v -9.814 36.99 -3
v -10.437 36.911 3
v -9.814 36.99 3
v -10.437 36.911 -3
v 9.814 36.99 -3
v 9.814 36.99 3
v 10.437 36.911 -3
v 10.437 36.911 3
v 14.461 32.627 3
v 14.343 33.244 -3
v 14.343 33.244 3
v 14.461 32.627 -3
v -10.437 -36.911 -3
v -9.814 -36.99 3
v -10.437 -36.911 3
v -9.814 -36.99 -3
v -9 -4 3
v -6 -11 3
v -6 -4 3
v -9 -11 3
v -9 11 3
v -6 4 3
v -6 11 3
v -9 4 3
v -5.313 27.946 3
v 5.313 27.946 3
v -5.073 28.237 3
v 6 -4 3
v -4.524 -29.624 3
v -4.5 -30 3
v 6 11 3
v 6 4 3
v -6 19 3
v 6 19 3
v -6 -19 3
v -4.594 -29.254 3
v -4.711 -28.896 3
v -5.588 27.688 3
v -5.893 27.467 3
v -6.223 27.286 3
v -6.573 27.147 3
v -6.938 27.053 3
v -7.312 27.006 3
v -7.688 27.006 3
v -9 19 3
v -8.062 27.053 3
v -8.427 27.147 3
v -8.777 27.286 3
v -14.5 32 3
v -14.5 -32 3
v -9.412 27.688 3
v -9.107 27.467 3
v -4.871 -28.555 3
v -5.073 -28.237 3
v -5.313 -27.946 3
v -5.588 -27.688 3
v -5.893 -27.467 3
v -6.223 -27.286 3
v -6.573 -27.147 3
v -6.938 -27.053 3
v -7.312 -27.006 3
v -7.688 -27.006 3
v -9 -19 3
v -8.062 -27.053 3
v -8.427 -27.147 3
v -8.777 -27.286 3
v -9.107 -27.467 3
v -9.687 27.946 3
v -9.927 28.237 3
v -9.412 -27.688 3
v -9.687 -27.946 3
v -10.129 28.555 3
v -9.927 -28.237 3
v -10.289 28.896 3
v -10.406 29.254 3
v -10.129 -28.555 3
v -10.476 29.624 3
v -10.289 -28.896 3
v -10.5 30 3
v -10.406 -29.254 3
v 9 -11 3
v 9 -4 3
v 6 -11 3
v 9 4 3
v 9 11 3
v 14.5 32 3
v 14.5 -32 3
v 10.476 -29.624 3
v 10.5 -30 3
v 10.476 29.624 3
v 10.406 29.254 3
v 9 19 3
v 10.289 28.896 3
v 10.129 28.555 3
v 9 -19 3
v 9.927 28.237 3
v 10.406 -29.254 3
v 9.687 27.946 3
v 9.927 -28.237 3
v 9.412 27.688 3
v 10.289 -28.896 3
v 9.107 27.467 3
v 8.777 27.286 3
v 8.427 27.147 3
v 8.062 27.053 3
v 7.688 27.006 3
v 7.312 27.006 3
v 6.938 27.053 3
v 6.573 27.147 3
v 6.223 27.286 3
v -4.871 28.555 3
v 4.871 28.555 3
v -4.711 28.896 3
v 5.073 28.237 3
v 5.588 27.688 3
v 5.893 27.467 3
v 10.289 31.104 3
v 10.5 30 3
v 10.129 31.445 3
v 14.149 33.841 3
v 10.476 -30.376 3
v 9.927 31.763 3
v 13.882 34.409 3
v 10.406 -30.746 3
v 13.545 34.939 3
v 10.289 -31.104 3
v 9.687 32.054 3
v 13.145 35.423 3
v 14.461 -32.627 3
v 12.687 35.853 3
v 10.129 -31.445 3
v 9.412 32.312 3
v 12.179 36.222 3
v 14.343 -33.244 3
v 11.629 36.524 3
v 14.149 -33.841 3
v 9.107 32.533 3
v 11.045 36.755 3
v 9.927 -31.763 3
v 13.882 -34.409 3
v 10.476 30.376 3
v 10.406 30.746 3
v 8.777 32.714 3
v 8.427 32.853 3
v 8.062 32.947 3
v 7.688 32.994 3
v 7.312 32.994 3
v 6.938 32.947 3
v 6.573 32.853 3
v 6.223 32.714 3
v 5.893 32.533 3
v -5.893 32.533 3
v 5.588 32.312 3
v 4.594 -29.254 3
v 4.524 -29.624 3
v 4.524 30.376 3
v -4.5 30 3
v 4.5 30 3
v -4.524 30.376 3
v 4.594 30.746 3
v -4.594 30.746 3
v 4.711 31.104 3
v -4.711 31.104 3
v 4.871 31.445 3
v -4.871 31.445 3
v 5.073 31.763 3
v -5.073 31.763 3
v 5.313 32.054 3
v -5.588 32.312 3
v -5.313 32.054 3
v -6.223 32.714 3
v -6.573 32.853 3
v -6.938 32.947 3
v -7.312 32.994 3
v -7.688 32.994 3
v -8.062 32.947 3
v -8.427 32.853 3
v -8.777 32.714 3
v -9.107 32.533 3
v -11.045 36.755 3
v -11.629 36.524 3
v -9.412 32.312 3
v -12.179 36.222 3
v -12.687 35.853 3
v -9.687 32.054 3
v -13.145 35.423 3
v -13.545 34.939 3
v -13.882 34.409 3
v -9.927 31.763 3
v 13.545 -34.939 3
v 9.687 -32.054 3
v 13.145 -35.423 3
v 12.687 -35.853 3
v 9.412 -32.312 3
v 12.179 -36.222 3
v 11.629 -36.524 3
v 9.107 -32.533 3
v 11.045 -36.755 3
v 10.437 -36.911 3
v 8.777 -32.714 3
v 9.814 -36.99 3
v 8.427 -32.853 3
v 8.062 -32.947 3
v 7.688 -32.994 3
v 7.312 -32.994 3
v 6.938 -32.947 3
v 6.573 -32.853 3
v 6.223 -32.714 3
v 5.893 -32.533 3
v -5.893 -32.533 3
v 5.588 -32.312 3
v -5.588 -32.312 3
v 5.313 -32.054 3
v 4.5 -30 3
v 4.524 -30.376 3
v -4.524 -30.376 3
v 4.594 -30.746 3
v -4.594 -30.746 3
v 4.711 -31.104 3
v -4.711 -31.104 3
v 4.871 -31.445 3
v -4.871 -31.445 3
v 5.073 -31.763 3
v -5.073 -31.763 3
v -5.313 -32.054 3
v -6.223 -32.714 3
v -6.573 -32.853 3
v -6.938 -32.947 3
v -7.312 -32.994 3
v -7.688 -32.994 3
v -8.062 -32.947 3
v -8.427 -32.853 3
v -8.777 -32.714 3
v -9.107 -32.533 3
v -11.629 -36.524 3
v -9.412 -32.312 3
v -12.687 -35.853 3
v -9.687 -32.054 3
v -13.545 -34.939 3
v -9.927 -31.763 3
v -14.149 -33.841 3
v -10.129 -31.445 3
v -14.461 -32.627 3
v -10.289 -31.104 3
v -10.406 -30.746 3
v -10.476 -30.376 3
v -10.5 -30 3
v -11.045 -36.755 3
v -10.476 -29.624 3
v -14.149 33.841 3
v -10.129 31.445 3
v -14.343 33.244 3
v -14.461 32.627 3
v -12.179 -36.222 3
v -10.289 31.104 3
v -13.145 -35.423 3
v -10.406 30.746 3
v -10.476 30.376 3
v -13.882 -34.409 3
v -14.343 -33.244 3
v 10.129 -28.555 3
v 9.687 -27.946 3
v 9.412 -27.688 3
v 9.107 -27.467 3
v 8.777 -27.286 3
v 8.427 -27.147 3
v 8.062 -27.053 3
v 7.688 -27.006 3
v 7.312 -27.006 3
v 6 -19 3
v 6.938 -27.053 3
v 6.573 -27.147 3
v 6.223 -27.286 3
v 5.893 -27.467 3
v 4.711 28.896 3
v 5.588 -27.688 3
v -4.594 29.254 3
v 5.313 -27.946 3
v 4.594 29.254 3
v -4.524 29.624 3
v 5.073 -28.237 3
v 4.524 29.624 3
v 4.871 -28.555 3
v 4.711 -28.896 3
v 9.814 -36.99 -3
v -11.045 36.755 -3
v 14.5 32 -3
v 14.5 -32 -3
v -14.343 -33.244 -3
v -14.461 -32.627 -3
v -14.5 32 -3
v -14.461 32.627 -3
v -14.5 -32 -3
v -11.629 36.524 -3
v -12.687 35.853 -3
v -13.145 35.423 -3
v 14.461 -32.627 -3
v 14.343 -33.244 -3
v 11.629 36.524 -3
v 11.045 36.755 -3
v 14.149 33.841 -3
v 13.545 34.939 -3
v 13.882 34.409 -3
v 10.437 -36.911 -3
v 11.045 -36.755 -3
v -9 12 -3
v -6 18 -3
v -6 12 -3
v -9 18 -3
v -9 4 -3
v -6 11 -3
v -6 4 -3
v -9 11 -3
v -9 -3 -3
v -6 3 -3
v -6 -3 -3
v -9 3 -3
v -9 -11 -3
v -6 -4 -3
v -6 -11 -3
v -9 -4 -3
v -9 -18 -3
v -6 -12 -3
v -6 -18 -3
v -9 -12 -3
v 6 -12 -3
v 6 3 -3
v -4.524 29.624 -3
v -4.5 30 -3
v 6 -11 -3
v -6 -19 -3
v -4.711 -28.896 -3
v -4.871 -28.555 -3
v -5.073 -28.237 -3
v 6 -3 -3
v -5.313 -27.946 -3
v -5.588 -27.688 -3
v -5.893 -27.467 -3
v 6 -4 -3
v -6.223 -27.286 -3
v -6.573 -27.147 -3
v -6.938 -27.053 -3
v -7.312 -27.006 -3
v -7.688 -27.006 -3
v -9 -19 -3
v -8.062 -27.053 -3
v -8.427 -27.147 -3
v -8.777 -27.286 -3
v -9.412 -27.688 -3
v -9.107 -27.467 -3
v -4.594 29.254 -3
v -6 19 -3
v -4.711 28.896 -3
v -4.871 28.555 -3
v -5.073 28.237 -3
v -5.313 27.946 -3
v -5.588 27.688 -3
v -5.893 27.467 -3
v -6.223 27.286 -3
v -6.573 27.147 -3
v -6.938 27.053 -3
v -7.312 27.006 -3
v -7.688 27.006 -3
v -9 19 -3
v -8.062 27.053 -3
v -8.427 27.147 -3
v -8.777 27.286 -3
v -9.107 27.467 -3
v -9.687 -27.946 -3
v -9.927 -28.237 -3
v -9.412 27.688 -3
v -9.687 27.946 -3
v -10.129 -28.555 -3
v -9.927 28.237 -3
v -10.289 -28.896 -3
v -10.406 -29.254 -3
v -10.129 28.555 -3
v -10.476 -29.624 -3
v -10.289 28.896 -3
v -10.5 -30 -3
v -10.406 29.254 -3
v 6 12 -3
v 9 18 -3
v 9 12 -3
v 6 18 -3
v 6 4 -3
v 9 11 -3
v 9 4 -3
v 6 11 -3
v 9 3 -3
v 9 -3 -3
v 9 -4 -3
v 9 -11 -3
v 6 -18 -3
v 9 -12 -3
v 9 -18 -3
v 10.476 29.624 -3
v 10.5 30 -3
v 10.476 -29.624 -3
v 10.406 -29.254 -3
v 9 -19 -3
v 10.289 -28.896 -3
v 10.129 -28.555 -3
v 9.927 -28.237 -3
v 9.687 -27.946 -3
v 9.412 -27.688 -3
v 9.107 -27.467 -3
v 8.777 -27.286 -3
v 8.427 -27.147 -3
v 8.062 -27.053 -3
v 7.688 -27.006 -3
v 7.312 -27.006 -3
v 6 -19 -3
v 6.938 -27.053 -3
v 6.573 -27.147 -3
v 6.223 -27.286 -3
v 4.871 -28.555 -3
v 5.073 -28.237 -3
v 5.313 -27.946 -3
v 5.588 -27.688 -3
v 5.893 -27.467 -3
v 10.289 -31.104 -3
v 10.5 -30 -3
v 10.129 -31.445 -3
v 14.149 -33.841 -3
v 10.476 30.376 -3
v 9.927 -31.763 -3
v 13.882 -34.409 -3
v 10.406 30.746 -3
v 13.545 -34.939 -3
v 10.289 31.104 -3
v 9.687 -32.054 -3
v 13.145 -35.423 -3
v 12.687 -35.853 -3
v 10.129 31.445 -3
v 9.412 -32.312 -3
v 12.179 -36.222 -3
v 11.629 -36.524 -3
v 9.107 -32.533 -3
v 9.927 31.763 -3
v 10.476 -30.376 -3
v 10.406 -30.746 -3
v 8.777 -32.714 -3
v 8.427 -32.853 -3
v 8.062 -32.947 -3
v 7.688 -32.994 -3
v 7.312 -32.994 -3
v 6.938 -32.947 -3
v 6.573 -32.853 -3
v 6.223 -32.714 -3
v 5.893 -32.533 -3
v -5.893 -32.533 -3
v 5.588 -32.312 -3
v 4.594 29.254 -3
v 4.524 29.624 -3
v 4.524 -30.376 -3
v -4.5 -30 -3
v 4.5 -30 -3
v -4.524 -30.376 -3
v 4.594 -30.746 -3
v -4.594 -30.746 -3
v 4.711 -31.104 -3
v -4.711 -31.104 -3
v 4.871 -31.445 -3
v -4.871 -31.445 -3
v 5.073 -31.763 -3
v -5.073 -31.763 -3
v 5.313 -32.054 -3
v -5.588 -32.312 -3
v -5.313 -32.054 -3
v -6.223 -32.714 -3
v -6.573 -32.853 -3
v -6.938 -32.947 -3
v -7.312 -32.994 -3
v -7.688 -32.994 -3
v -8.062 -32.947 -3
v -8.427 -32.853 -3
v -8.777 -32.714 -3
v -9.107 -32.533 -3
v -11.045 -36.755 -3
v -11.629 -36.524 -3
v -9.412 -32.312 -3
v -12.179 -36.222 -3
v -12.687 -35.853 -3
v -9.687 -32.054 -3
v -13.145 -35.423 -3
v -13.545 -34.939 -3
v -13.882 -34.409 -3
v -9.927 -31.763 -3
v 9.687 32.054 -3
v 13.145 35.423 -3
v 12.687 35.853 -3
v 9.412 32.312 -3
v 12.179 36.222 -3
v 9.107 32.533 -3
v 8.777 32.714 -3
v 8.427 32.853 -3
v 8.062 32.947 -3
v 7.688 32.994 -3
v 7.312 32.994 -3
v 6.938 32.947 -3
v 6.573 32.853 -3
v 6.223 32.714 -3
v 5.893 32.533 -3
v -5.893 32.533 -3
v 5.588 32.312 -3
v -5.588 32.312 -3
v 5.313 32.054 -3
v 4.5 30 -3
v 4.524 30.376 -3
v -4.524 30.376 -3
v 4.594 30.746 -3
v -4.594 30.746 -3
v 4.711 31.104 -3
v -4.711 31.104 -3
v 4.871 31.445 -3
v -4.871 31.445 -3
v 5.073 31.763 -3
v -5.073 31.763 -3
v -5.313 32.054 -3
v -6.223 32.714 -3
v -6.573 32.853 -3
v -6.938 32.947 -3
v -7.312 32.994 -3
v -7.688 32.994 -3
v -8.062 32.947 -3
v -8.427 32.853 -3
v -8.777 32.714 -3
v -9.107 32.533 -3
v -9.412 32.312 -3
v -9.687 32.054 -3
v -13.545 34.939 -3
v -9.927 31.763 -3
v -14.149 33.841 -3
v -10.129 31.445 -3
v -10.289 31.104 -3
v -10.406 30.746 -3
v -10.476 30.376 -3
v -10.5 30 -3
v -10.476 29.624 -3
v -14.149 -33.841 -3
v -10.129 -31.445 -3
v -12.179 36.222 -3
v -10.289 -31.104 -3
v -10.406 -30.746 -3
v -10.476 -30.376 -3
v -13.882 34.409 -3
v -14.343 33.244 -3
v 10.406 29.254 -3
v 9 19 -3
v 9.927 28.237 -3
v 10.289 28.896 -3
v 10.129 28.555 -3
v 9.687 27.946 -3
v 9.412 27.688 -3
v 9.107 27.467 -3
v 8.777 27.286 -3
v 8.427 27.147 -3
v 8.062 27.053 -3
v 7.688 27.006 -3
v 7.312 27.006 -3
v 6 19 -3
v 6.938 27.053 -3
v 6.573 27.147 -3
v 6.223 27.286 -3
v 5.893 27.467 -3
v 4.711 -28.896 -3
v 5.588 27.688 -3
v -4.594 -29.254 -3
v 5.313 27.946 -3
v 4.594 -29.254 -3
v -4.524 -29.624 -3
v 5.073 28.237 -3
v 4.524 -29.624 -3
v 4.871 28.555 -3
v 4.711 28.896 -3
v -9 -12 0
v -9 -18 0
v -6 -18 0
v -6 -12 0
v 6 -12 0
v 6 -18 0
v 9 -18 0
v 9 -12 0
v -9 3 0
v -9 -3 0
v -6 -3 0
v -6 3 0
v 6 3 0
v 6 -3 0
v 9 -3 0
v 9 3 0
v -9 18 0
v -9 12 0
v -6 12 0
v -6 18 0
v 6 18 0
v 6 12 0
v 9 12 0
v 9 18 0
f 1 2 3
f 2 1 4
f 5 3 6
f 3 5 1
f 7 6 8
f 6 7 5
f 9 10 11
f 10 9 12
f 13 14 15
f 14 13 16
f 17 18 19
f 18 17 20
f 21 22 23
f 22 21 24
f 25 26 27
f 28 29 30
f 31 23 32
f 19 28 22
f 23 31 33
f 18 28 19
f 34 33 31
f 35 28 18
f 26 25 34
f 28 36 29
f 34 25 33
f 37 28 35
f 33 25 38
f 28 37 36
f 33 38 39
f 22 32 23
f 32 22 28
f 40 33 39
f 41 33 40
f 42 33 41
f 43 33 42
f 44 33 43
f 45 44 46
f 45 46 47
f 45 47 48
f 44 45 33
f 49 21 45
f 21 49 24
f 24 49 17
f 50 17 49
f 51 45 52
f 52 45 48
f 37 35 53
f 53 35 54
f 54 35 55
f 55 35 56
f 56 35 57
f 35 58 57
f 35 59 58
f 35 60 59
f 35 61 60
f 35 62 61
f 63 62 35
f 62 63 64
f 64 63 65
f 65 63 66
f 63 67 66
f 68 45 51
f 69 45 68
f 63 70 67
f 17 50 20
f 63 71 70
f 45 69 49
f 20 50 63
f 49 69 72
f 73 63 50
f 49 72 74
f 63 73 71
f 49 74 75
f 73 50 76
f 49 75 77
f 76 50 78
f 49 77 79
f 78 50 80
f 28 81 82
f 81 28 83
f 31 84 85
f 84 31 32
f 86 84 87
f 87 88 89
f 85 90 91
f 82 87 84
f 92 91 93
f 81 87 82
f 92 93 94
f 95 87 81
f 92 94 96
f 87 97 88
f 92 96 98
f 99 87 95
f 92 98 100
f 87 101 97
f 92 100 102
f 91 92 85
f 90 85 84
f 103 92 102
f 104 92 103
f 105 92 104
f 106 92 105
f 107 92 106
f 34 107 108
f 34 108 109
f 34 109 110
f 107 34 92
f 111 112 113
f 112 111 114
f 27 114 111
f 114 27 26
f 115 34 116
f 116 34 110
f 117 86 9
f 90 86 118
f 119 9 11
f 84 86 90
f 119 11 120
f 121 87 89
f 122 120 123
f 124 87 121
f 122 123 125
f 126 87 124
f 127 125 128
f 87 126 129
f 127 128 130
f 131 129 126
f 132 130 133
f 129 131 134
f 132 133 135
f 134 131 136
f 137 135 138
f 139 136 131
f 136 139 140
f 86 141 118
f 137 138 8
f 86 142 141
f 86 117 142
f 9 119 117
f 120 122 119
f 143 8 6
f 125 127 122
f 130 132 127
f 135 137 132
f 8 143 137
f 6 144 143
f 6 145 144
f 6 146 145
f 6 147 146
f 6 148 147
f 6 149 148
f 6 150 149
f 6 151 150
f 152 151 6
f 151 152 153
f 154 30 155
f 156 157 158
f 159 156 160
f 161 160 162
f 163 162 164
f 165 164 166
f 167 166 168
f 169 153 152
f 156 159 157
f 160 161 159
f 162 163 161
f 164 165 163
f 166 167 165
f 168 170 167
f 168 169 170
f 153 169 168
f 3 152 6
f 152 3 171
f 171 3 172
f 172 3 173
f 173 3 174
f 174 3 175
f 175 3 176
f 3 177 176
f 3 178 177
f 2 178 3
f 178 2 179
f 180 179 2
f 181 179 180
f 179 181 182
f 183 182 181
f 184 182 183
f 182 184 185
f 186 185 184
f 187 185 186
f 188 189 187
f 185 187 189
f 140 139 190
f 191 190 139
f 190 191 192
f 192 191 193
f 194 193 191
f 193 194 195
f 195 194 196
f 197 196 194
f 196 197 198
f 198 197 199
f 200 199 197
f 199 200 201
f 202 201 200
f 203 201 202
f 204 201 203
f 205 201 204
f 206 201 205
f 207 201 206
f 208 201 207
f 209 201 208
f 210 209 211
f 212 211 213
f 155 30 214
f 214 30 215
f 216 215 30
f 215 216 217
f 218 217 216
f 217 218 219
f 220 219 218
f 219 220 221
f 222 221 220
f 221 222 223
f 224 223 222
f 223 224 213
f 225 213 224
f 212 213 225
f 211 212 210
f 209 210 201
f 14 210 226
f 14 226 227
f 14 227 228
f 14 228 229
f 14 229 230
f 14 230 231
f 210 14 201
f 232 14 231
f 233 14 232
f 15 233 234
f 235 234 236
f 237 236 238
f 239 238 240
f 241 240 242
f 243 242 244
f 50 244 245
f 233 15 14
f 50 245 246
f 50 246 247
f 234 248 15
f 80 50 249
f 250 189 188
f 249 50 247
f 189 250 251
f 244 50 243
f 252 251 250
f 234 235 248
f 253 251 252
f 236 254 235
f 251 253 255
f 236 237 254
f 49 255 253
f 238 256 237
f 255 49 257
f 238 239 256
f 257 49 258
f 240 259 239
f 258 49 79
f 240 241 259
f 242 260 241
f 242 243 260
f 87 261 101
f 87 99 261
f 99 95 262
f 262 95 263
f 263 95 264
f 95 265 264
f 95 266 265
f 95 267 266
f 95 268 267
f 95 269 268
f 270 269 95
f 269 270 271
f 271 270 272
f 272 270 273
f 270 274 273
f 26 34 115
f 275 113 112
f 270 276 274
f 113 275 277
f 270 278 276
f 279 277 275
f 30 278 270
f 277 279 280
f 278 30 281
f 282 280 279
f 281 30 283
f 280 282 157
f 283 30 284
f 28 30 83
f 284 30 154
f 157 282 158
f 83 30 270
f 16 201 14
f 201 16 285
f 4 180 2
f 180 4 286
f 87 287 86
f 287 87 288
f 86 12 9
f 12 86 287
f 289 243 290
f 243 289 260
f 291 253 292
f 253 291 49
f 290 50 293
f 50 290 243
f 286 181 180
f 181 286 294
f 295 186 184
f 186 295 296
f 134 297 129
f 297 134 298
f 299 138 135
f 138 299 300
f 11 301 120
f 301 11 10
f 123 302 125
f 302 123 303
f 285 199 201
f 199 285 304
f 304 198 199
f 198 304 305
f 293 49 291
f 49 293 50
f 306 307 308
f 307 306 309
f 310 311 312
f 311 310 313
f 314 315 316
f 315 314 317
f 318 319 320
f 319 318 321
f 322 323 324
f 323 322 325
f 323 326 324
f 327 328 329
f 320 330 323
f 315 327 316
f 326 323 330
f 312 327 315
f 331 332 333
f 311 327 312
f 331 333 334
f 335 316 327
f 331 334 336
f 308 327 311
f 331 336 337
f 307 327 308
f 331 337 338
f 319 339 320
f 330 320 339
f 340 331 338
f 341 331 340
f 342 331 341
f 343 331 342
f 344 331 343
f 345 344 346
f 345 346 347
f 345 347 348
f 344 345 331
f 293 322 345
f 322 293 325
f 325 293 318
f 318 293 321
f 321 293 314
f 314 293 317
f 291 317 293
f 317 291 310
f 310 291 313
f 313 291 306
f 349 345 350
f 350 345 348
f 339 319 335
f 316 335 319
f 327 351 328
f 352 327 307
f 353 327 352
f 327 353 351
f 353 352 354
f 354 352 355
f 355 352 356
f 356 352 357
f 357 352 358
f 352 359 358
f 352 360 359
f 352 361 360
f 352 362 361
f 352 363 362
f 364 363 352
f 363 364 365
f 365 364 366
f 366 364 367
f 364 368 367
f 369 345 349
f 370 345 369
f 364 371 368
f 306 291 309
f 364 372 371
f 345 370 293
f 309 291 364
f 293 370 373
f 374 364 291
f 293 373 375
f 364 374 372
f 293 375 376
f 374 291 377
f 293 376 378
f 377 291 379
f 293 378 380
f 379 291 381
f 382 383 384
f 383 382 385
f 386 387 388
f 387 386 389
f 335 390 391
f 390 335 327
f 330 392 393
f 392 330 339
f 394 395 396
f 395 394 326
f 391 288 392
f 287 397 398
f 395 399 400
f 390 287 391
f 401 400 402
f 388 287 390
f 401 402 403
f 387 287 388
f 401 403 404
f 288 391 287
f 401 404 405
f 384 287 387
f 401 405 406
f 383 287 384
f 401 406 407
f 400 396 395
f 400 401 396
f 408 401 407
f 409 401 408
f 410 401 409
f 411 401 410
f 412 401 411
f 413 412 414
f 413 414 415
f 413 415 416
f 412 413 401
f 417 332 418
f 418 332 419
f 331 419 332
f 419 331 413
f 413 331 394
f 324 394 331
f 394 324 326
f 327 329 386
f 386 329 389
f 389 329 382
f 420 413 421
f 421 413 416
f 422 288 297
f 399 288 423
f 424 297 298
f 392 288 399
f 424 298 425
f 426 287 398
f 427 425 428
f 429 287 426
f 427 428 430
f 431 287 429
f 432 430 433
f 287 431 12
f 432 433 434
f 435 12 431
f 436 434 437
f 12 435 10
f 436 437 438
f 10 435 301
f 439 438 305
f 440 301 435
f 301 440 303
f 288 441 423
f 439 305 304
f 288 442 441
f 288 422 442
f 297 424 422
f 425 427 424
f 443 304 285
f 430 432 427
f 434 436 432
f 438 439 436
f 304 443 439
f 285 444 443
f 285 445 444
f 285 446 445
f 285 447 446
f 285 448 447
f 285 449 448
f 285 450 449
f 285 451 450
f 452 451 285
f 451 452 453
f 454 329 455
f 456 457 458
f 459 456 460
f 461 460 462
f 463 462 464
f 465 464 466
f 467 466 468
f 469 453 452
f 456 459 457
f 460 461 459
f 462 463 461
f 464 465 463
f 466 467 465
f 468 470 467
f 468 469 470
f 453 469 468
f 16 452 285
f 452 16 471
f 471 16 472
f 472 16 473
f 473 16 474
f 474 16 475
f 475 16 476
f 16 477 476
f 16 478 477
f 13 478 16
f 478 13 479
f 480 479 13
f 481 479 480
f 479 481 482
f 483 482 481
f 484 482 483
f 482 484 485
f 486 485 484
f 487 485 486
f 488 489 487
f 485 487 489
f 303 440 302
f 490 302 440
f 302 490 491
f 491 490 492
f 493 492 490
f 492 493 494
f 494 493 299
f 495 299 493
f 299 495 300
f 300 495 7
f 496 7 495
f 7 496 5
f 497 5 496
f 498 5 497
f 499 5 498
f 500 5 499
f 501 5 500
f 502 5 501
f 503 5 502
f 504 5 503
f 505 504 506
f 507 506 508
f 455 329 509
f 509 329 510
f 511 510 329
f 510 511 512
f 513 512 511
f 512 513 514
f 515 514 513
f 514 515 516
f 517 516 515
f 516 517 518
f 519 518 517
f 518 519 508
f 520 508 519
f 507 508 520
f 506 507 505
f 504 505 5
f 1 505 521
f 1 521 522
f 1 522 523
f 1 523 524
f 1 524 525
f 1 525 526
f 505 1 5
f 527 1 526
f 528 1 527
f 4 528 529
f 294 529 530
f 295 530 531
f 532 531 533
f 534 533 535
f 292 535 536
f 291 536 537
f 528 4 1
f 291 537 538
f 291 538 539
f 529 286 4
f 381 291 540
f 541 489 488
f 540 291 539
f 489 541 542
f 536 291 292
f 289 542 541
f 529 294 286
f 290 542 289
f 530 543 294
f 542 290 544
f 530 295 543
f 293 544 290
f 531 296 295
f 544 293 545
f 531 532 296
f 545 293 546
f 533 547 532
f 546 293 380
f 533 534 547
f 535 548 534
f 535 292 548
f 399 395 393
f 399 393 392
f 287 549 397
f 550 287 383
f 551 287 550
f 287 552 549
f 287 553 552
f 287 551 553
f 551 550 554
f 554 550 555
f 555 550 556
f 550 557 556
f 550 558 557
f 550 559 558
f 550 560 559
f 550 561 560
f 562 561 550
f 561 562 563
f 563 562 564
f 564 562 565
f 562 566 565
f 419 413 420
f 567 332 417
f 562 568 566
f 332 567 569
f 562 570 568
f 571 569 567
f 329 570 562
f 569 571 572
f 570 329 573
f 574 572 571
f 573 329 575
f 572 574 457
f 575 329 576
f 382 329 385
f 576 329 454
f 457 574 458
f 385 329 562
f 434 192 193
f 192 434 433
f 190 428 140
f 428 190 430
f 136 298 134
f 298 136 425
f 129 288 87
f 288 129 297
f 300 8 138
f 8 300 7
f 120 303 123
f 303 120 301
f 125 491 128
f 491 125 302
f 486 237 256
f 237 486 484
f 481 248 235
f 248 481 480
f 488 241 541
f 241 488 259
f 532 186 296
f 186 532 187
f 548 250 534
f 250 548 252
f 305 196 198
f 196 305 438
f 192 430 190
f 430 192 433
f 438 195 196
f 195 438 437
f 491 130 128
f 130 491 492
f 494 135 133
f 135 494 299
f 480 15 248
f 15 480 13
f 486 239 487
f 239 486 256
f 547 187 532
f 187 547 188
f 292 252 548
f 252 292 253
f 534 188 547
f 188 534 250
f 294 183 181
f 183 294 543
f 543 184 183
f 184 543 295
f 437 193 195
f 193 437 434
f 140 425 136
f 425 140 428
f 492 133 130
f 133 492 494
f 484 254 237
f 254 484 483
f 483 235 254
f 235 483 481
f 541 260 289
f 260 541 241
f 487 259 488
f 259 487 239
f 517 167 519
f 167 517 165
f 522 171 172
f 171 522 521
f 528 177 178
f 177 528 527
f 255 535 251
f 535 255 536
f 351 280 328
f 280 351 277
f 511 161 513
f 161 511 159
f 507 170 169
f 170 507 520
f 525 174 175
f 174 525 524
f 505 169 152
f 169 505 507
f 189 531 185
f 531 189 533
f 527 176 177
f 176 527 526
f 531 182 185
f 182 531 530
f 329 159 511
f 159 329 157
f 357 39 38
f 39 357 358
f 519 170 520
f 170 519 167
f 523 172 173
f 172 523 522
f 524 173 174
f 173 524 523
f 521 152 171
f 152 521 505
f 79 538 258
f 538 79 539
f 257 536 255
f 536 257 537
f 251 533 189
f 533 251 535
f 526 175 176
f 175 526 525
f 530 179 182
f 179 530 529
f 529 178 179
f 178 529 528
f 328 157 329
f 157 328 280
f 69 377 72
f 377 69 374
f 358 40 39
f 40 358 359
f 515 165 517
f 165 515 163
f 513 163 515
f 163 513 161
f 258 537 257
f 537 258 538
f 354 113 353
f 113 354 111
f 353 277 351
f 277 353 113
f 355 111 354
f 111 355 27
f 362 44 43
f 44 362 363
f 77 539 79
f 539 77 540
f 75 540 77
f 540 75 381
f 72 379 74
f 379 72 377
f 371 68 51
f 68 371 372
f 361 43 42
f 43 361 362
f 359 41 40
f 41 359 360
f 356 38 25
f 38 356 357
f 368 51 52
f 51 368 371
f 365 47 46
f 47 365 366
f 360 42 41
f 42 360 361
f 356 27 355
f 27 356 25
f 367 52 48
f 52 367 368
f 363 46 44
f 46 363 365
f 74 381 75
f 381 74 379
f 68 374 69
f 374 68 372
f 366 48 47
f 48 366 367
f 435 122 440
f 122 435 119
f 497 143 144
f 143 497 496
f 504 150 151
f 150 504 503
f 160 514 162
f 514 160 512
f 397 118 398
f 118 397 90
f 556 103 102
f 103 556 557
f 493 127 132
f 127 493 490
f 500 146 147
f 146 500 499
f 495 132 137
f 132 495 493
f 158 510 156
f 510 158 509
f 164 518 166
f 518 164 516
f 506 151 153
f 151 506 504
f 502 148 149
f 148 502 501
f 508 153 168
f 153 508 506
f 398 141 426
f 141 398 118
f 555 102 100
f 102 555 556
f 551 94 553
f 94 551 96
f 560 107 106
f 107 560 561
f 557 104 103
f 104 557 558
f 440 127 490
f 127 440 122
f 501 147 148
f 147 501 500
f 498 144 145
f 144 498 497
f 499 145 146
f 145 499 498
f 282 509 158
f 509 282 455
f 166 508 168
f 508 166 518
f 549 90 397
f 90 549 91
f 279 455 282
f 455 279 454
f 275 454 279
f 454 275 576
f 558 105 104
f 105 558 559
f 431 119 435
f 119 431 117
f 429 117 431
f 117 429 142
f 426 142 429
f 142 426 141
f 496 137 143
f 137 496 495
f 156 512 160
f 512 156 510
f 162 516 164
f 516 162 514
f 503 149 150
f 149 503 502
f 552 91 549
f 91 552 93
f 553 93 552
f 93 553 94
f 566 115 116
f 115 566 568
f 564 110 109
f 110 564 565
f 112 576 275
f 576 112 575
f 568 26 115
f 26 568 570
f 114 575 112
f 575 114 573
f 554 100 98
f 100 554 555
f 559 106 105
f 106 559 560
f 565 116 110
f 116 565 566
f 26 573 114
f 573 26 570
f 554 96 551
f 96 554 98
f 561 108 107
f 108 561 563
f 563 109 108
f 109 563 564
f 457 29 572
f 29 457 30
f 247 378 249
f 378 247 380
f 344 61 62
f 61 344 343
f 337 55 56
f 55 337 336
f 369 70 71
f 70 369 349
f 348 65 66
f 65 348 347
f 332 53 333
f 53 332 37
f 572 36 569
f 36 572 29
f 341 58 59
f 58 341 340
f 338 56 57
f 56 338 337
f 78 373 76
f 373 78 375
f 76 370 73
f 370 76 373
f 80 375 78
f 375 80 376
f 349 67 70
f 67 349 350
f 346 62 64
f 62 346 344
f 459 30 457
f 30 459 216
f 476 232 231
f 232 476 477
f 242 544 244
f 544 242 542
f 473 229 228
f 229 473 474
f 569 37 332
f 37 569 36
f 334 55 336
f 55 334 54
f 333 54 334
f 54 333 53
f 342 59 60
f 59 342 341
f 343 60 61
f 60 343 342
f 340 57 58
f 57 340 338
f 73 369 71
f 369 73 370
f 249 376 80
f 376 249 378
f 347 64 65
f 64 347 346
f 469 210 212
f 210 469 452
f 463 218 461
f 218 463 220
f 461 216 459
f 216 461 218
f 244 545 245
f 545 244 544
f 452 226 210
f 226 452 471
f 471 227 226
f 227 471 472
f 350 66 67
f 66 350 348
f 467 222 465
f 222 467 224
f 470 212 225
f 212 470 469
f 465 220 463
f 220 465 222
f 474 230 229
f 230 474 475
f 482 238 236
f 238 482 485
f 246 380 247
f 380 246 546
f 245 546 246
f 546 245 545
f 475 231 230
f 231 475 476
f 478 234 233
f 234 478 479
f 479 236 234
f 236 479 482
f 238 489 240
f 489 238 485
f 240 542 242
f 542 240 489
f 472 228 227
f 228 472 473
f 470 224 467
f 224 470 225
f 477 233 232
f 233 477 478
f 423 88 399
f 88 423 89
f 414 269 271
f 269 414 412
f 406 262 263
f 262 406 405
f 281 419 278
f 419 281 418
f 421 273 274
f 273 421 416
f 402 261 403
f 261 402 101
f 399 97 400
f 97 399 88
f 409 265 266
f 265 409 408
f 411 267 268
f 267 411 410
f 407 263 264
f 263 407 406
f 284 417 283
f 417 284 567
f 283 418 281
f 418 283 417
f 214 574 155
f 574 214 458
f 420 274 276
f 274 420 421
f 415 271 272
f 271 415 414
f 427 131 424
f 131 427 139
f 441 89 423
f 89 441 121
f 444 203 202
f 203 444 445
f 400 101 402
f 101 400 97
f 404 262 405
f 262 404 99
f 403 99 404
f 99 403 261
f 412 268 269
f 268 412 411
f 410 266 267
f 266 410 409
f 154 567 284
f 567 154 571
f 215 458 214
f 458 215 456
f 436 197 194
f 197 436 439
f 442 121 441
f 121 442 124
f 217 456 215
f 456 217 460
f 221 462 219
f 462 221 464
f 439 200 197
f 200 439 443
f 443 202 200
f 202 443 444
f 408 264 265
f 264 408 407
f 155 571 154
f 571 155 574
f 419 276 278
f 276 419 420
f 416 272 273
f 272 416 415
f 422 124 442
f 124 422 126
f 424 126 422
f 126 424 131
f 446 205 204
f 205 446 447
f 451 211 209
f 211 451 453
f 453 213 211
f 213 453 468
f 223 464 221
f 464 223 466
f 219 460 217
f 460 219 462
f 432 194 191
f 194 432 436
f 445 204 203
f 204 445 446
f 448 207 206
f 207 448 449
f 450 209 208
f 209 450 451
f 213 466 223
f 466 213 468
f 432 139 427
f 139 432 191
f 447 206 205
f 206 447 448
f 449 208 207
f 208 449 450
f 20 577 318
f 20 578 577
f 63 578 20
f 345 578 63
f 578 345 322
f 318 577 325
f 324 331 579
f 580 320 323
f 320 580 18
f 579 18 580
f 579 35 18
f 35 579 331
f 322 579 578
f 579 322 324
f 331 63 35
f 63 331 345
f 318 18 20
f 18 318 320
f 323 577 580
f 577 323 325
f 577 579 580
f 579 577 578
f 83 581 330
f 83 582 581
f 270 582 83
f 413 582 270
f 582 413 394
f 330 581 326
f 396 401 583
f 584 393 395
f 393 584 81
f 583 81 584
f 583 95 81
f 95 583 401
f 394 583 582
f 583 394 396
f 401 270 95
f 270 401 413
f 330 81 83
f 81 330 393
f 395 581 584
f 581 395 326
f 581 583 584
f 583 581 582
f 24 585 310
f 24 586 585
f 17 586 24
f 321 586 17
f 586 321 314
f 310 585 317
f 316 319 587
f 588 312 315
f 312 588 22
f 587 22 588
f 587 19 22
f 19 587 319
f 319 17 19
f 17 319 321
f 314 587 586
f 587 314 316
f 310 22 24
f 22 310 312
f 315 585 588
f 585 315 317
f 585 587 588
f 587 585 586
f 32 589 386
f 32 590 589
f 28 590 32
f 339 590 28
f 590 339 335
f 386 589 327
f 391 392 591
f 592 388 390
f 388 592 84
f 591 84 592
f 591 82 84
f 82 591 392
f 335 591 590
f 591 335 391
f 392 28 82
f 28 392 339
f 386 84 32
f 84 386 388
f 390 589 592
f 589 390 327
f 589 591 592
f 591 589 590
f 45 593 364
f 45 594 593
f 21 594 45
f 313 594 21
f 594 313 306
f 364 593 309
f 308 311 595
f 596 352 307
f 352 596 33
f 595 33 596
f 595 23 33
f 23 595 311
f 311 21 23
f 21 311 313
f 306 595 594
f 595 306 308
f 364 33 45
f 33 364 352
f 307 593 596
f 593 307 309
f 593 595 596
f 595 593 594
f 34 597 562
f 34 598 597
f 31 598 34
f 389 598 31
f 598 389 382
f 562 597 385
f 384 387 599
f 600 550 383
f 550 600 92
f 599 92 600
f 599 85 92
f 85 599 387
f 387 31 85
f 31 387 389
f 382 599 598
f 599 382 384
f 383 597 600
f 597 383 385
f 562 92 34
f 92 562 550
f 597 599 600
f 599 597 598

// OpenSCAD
$fn = 50;


difference() {
	union() {
		translate(v = [0, 0, -3.0000000000]) {
			hull() {
				translate(v = [-9.5000000000, 32.0000000000, 0]) {
					cylinder(h = 6, r = 5);
				}
				translate(v = [9.5000000000, 32.0000000000, 0]) {
					cylinder(h = 6, r = 5);
				}
				translate(v = [-9.5000000000, -32.0000000000, 0]) {
					cylinder(h = 6, r = 5);
				}
				translate(v = [9.5000000000, -32.0000000000, 0]) {
					cylinder(h = 6, r = 5);
				}
			}
		}
		translate(v = [0, 0, -3.0000000000]) {
			hull() {
				translate(v = [-9.5000000000, 32.0000000000, 0]) {
					cylinder(h = 6, r = 5);
				}
				translate(v = [9.5000000000, 32.0000000000, 0]) {
					cylinder(h = 6, r = 5);
				}
				translate(v = [-9.5000000000, -32.0000000000, 0]) {
					cylinder(h = 6, r = 5);
				}
				translate(v = [9.5000000000, -32.0000000000, 0]) {
					cylinder(h = 6, r = 5);
				}
			}
		}
	}
	union() {
		translate(v = [-7.5000000000, 30.0000000000, -50.0000000000]) {
			cylinder(h = 100, r = 3.0000000000);
		}
		translate(v = [7.5000000000, 30.0000000000, -50.0000000000]) {
			cylinder(h = 100, r = 3.0000000000);
		}
		translate(v = [-7.5000000000, -30.0000000000, -50.0000000000]) {
			cylinder(h = 100, r = 3.0000000000);
		}
		translate(v = [7.5000000000, -30.0000000000, -50.0000000000]) {
			cylinder(h = 100, r = 3.0000000000);
		}
		translate(v = [-9.0000000000, -19.0000000000, -50]) {
			cube(size = [3, 1, 100]);
		}
		translate(v = [-9.0000000000, -12.0000000000, -50]) {
			cube(size = [3, 1, 100]);
		}
		translate(v = [-9.0000000000, -19.0000000000, 0]) {
			cube(size = [3, 8, 3]);
		}
		translate(v = [6.0000000000, -19.0000000000, -50]) {
			cube(size = [3, 1, 100]);
		}
		translate(v = [6.0000000000, -12.0000000000, -50]) {
			cube(size = [3, 1, 100]);
		}
		translate(v = [6.0000000000, -19.0000000000, 0]) {
			cube(size = [3, 8, 3]);
		}
		translate(v = [-9.0000000000, -4.0000000000, -50]) {
			cube(size = [3, 1, 100]);
		}
		translate(v = [-9.0000000000, 3.0000000000, -50]) {
			cube(size = [3, 1, 100]);
		}
		translate(v = [-9.0000000000, -4.0000000000, 0]) {
			cube(size = [3, 8, 3]);
		}
		translate(v = [6.0000000000, -4.0000000000, -50]) {
			cube(size = [3, 1, 100]);
		}
		translate(v = [6.0000000000, 3.0000000000, -50]) {
			cube(size = [3, 1, 100]);
		}
		translate(v = [6.0000000000, -4.0000000000, 0]) {
			cube(size = [3, 8, 3]);
		}
		translate(v = [-9.0000000000, 11.0000000000, -50]) {
			cube(size = [3, 1, 100]);
		}
		translate(v = [-9.0000000000, 18.0000000000, -50]) {
			cube(size = [3, 1, 100]);
		}
		translate(v = [-9.0000000000, 11.0000000000, 0]) {
			cube(size = [3, 8, 3]);
		}
		translate(v = [6.0000000000, 11.0000000000, -50]) {
			cube(size = [3, 1, 100]);
		}
		translate(v = [6.0000000000, 18.0000000000, -50]) {
			cube(size = [3, 1, 100]);
		}
		translate(v = [6.0000000000, 11.0000000000, 0]) {
			cube(size = [3, 8, 3]);
		}
	}
}
